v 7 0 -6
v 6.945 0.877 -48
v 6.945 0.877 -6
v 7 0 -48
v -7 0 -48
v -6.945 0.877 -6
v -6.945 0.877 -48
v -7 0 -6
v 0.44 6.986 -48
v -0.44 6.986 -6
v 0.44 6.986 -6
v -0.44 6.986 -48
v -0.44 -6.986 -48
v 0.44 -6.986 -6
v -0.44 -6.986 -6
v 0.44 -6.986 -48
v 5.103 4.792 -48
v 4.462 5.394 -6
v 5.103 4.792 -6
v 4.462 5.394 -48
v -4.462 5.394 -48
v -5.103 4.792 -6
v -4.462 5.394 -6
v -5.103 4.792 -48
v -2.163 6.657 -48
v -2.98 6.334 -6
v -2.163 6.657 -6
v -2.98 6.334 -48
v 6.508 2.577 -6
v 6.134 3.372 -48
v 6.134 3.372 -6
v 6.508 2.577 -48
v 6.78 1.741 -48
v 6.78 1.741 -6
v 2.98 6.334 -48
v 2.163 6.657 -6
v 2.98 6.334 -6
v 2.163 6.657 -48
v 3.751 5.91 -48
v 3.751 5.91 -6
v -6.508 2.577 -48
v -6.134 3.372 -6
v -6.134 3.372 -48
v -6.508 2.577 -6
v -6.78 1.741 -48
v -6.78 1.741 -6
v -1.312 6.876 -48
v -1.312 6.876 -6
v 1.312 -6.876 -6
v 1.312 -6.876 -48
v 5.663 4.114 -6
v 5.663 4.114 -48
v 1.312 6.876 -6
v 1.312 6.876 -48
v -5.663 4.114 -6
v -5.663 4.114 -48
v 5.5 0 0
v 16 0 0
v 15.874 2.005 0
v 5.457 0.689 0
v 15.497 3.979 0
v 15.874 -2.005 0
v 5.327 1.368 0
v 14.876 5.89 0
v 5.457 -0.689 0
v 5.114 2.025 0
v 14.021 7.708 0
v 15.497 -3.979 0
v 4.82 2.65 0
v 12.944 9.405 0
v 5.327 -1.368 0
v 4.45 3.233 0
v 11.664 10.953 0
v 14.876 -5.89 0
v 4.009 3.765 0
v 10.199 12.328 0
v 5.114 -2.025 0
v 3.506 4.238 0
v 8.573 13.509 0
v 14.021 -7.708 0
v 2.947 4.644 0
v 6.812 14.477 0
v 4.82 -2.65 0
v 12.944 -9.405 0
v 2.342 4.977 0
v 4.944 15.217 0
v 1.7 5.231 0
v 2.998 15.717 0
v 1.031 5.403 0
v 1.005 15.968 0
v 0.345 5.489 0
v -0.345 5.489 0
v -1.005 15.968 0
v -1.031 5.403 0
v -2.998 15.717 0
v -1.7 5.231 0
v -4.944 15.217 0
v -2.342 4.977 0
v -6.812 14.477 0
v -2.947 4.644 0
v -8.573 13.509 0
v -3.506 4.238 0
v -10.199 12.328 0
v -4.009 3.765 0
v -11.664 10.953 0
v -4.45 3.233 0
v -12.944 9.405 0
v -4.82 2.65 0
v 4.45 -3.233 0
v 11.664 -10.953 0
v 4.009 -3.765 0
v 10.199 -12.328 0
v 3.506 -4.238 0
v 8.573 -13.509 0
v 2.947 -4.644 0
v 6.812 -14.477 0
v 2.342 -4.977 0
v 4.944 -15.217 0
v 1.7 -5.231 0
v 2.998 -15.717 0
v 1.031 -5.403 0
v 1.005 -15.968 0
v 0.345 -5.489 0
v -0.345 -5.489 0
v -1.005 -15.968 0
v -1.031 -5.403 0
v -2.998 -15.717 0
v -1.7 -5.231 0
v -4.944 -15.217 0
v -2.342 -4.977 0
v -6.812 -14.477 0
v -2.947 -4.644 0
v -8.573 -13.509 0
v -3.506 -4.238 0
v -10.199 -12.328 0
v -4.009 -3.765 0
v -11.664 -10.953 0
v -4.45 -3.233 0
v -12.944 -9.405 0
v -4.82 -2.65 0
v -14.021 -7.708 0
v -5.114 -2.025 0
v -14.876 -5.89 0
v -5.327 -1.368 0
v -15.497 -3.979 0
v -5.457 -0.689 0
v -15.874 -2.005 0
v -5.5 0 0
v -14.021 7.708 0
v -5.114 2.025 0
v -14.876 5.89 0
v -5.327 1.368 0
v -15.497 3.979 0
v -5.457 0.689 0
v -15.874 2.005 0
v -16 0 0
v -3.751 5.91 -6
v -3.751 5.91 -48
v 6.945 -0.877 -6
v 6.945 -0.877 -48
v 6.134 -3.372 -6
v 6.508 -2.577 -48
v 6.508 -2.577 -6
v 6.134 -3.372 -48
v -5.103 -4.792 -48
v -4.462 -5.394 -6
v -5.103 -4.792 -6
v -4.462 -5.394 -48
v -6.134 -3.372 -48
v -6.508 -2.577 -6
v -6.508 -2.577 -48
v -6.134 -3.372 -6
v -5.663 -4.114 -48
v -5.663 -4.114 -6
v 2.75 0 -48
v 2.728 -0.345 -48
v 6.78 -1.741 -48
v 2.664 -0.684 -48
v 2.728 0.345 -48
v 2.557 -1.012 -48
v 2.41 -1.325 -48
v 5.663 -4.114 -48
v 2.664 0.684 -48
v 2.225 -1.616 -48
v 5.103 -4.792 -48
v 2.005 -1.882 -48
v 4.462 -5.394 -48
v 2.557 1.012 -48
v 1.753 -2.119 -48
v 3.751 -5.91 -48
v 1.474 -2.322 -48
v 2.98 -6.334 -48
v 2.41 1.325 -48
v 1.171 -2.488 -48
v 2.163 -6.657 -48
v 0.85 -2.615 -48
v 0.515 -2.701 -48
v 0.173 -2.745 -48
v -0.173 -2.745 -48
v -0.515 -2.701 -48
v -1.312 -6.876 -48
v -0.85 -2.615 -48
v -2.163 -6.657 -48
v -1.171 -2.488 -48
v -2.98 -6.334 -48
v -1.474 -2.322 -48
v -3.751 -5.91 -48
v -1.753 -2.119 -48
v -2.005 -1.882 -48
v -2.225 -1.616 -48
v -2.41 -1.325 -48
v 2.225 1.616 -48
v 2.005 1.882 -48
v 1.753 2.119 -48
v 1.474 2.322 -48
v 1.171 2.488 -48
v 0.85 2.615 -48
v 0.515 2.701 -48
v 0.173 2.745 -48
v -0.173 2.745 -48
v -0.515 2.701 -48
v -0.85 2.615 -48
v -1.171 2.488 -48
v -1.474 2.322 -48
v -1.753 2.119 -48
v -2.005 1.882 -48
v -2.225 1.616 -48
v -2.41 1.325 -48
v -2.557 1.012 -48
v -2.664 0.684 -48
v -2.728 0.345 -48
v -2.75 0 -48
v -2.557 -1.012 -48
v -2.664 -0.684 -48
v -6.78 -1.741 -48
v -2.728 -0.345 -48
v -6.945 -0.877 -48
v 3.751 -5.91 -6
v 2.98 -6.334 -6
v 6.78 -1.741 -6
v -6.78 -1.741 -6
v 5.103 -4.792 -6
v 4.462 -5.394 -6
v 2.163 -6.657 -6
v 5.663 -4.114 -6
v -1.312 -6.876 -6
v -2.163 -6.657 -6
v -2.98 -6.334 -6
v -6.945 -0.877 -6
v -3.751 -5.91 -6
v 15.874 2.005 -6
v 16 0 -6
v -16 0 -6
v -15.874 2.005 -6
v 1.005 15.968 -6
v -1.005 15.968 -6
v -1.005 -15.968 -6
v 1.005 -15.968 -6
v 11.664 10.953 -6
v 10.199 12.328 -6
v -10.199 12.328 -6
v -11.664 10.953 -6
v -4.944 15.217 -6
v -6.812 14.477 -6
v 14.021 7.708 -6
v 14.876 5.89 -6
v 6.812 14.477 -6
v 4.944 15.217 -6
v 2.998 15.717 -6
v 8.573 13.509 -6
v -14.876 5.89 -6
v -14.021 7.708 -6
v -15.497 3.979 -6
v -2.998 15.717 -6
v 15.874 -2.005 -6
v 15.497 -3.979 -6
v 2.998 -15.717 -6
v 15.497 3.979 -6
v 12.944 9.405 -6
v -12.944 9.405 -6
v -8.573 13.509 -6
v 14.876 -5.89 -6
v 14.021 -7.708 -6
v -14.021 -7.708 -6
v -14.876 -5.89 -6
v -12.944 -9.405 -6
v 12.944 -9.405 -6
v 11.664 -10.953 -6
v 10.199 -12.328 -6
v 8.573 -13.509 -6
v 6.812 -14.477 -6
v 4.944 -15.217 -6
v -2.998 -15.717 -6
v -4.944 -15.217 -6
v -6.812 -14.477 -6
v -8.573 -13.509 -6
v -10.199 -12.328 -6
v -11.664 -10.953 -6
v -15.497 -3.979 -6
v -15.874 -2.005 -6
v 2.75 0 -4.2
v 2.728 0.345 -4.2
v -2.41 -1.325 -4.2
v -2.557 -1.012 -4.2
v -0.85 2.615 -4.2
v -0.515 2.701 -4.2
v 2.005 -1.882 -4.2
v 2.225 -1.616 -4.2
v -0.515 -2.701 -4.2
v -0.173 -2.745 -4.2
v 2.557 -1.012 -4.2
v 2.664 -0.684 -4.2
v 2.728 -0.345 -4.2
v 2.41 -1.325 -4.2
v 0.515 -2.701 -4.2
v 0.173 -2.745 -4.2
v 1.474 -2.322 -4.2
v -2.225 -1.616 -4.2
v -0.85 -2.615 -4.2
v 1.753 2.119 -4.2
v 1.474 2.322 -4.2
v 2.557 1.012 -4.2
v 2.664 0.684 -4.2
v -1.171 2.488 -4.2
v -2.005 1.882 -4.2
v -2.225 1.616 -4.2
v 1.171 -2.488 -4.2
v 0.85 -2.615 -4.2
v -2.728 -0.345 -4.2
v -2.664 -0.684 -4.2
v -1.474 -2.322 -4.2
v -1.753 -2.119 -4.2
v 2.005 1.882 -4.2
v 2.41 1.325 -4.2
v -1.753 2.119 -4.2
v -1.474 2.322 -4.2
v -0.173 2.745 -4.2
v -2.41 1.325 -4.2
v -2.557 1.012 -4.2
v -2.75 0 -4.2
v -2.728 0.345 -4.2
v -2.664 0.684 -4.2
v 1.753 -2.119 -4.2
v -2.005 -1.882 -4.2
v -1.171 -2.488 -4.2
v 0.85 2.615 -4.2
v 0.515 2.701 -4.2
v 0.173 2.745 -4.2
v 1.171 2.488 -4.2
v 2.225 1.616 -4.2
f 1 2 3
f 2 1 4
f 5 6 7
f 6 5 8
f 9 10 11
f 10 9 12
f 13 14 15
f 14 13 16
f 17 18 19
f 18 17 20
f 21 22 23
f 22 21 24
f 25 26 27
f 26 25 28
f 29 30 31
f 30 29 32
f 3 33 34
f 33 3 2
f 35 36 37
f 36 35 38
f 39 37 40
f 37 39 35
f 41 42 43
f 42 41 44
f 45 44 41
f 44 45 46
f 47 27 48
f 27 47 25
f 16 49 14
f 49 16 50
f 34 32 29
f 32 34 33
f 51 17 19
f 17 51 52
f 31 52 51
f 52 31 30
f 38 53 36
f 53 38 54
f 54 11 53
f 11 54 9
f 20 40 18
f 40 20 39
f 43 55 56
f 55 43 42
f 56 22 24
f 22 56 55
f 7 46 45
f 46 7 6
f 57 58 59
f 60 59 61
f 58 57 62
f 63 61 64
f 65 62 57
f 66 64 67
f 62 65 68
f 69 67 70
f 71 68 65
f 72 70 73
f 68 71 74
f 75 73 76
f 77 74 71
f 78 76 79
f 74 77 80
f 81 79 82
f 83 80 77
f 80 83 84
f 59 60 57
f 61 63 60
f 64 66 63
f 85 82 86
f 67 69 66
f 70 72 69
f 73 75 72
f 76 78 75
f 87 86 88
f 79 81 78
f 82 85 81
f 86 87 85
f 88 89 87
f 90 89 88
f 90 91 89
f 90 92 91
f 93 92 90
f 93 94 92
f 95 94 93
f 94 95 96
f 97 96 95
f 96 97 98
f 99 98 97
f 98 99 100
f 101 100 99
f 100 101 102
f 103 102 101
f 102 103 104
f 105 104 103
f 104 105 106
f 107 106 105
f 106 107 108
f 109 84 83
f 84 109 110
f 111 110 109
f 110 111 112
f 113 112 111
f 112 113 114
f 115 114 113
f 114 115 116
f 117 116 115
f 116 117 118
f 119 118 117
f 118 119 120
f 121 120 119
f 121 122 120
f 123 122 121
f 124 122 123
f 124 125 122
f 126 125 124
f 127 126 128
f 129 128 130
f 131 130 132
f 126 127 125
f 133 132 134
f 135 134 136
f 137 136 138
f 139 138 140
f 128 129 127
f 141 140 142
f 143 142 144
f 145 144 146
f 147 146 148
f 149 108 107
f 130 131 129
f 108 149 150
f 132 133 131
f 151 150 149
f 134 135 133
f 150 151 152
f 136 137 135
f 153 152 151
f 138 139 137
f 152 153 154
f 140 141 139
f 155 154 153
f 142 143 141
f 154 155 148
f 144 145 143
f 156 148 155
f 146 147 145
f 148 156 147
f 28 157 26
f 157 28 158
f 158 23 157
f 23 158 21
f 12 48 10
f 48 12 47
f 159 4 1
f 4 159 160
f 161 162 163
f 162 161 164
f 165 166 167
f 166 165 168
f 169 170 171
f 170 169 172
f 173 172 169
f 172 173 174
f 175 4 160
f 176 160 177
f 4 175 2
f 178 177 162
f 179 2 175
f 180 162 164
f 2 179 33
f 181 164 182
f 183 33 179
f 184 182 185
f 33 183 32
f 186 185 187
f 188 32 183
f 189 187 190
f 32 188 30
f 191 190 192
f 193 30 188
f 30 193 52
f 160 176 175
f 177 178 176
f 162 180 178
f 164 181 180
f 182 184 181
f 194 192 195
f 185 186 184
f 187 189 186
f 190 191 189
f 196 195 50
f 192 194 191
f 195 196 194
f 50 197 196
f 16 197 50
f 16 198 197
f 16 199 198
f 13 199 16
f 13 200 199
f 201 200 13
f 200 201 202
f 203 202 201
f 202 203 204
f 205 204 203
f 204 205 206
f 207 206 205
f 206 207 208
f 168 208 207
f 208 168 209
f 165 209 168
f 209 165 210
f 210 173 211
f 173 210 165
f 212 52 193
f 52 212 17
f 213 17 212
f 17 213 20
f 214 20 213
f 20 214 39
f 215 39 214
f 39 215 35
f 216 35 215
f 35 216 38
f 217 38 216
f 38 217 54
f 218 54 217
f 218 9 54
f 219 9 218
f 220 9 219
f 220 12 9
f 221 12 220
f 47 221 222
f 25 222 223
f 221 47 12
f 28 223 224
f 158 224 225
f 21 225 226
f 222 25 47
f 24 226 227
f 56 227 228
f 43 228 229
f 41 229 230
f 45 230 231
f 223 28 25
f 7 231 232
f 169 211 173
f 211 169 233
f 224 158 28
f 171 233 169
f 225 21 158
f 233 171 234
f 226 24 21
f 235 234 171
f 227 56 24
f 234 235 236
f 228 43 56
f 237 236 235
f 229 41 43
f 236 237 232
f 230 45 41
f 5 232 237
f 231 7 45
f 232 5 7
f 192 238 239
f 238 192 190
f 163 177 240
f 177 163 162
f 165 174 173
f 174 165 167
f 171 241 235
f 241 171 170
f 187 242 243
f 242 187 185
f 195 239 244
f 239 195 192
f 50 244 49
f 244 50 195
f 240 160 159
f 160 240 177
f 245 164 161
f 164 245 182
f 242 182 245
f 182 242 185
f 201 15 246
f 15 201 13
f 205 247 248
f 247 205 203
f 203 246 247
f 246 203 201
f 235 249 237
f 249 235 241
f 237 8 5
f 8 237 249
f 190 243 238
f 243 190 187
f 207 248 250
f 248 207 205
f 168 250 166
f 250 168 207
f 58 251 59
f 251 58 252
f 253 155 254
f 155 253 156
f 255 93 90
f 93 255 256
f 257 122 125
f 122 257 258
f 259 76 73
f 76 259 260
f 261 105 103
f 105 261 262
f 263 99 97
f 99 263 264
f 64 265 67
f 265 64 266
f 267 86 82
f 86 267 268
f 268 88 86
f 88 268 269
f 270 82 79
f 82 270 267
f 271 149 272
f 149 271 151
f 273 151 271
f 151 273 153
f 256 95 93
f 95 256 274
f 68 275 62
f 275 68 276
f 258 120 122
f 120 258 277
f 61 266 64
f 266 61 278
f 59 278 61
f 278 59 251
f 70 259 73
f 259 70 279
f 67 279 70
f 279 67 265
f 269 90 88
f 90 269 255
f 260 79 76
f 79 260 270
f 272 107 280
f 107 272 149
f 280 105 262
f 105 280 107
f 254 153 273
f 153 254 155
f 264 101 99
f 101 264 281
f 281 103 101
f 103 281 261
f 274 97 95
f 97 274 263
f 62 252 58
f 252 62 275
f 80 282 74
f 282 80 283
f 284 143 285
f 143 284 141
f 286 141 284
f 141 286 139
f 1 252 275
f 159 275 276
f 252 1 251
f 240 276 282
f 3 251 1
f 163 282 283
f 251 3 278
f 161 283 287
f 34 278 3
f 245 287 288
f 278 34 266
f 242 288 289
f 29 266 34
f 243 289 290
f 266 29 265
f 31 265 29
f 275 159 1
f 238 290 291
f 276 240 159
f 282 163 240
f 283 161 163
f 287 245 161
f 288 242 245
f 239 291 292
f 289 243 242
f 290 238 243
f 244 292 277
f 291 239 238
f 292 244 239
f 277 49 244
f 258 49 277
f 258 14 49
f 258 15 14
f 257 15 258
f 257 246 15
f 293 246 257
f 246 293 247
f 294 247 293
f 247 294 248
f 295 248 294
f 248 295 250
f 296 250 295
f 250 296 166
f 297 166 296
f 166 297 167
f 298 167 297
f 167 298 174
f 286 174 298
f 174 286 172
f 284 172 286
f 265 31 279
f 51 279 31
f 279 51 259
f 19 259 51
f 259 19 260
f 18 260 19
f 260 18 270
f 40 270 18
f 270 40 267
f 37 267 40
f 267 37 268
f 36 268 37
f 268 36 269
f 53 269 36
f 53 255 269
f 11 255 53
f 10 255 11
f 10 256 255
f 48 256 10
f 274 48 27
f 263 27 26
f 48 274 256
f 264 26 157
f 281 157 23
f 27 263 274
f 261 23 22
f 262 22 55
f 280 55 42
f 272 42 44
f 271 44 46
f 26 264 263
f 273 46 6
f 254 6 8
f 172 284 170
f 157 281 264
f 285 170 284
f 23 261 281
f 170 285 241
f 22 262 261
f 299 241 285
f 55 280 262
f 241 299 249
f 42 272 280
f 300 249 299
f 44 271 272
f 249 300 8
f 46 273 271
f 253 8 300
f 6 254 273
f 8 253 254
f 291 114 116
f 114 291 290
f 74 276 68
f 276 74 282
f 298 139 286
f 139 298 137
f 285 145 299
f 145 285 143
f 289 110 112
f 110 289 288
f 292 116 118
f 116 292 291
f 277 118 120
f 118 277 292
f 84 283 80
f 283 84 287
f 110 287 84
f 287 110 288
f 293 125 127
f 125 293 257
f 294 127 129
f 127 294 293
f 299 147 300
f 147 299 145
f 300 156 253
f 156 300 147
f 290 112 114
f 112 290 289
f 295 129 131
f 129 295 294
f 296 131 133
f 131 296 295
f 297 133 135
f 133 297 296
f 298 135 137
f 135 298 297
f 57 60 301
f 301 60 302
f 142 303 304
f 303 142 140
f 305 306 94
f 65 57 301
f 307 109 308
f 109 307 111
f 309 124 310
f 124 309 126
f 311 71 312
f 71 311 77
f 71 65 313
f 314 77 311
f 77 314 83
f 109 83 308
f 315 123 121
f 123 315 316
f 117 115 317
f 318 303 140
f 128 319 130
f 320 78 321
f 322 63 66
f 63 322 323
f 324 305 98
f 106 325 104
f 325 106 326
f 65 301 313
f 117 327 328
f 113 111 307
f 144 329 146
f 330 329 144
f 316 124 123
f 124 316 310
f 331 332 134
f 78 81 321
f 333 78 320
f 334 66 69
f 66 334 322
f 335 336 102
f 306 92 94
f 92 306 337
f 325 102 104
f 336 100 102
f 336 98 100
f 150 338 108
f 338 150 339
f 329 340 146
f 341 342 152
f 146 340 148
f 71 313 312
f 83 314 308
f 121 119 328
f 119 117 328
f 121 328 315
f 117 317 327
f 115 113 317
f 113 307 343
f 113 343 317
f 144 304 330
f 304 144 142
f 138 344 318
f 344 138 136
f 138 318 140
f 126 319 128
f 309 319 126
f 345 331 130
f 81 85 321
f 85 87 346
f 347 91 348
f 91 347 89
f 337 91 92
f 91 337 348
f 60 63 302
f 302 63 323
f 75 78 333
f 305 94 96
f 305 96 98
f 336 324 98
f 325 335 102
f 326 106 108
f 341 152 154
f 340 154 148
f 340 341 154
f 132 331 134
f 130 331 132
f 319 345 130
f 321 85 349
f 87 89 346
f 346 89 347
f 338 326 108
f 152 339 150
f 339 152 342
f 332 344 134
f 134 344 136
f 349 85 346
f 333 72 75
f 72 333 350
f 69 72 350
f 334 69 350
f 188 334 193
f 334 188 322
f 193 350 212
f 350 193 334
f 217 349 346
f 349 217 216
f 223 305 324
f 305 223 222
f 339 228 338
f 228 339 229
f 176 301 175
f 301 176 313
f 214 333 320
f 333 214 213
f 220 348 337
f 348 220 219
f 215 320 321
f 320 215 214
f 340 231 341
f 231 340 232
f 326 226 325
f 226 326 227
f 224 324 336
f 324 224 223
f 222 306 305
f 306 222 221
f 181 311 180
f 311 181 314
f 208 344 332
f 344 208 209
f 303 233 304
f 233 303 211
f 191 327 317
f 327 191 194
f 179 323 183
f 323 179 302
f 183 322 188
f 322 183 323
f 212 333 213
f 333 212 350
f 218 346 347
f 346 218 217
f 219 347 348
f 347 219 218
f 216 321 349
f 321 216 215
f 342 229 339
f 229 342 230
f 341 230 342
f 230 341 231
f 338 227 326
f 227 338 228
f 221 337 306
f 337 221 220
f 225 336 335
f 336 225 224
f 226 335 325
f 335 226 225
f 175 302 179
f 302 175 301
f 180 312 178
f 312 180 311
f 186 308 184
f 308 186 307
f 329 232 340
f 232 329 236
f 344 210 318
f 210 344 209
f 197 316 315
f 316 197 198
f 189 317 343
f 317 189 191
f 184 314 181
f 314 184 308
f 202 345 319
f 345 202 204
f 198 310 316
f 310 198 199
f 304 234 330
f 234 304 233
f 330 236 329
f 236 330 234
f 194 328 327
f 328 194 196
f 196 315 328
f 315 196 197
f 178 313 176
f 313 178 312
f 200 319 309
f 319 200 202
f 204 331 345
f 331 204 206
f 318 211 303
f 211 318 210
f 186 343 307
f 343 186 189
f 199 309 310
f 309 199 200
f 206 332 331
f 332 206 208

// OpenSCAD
$fn = 50;


difference() {
	union() {
		translate(v = [0, 0, -48.0000000000]) {
			cylinder(h = 48, r = 7.0000000000);
		}
		translate(v = [0, 0, -6.0000000000]) {
			cylinder(h = 6, r = 16.0000000000);
		}
	}
	union() {
		translate(v = [0, 0, 0]) {
			rotate(a = [0, 0, 0]) {
				difference() {
					union() {
						#translate(v = [0, 0, -48.0000000000]) {
							cylinder(h = 48, r = 2.2500000000);
						}
						#translate(v = [0, 0, -4.2000000000]) {
							cylinder(h = 4.2000000000, r1 = 2.7500000000, r2 = 5.5000000000);
						}
						#translate(v = [0, 0, -48.0000000000]) {
							cylinder(h = 48, r = 2.7500000000);
						}
						#translate(v = [0, 0, -48.0000000000]) {
							cylinder(h = 48, r = 2.2500000000);
						}
					}
					union();
				}
			}
		}
	}
}
